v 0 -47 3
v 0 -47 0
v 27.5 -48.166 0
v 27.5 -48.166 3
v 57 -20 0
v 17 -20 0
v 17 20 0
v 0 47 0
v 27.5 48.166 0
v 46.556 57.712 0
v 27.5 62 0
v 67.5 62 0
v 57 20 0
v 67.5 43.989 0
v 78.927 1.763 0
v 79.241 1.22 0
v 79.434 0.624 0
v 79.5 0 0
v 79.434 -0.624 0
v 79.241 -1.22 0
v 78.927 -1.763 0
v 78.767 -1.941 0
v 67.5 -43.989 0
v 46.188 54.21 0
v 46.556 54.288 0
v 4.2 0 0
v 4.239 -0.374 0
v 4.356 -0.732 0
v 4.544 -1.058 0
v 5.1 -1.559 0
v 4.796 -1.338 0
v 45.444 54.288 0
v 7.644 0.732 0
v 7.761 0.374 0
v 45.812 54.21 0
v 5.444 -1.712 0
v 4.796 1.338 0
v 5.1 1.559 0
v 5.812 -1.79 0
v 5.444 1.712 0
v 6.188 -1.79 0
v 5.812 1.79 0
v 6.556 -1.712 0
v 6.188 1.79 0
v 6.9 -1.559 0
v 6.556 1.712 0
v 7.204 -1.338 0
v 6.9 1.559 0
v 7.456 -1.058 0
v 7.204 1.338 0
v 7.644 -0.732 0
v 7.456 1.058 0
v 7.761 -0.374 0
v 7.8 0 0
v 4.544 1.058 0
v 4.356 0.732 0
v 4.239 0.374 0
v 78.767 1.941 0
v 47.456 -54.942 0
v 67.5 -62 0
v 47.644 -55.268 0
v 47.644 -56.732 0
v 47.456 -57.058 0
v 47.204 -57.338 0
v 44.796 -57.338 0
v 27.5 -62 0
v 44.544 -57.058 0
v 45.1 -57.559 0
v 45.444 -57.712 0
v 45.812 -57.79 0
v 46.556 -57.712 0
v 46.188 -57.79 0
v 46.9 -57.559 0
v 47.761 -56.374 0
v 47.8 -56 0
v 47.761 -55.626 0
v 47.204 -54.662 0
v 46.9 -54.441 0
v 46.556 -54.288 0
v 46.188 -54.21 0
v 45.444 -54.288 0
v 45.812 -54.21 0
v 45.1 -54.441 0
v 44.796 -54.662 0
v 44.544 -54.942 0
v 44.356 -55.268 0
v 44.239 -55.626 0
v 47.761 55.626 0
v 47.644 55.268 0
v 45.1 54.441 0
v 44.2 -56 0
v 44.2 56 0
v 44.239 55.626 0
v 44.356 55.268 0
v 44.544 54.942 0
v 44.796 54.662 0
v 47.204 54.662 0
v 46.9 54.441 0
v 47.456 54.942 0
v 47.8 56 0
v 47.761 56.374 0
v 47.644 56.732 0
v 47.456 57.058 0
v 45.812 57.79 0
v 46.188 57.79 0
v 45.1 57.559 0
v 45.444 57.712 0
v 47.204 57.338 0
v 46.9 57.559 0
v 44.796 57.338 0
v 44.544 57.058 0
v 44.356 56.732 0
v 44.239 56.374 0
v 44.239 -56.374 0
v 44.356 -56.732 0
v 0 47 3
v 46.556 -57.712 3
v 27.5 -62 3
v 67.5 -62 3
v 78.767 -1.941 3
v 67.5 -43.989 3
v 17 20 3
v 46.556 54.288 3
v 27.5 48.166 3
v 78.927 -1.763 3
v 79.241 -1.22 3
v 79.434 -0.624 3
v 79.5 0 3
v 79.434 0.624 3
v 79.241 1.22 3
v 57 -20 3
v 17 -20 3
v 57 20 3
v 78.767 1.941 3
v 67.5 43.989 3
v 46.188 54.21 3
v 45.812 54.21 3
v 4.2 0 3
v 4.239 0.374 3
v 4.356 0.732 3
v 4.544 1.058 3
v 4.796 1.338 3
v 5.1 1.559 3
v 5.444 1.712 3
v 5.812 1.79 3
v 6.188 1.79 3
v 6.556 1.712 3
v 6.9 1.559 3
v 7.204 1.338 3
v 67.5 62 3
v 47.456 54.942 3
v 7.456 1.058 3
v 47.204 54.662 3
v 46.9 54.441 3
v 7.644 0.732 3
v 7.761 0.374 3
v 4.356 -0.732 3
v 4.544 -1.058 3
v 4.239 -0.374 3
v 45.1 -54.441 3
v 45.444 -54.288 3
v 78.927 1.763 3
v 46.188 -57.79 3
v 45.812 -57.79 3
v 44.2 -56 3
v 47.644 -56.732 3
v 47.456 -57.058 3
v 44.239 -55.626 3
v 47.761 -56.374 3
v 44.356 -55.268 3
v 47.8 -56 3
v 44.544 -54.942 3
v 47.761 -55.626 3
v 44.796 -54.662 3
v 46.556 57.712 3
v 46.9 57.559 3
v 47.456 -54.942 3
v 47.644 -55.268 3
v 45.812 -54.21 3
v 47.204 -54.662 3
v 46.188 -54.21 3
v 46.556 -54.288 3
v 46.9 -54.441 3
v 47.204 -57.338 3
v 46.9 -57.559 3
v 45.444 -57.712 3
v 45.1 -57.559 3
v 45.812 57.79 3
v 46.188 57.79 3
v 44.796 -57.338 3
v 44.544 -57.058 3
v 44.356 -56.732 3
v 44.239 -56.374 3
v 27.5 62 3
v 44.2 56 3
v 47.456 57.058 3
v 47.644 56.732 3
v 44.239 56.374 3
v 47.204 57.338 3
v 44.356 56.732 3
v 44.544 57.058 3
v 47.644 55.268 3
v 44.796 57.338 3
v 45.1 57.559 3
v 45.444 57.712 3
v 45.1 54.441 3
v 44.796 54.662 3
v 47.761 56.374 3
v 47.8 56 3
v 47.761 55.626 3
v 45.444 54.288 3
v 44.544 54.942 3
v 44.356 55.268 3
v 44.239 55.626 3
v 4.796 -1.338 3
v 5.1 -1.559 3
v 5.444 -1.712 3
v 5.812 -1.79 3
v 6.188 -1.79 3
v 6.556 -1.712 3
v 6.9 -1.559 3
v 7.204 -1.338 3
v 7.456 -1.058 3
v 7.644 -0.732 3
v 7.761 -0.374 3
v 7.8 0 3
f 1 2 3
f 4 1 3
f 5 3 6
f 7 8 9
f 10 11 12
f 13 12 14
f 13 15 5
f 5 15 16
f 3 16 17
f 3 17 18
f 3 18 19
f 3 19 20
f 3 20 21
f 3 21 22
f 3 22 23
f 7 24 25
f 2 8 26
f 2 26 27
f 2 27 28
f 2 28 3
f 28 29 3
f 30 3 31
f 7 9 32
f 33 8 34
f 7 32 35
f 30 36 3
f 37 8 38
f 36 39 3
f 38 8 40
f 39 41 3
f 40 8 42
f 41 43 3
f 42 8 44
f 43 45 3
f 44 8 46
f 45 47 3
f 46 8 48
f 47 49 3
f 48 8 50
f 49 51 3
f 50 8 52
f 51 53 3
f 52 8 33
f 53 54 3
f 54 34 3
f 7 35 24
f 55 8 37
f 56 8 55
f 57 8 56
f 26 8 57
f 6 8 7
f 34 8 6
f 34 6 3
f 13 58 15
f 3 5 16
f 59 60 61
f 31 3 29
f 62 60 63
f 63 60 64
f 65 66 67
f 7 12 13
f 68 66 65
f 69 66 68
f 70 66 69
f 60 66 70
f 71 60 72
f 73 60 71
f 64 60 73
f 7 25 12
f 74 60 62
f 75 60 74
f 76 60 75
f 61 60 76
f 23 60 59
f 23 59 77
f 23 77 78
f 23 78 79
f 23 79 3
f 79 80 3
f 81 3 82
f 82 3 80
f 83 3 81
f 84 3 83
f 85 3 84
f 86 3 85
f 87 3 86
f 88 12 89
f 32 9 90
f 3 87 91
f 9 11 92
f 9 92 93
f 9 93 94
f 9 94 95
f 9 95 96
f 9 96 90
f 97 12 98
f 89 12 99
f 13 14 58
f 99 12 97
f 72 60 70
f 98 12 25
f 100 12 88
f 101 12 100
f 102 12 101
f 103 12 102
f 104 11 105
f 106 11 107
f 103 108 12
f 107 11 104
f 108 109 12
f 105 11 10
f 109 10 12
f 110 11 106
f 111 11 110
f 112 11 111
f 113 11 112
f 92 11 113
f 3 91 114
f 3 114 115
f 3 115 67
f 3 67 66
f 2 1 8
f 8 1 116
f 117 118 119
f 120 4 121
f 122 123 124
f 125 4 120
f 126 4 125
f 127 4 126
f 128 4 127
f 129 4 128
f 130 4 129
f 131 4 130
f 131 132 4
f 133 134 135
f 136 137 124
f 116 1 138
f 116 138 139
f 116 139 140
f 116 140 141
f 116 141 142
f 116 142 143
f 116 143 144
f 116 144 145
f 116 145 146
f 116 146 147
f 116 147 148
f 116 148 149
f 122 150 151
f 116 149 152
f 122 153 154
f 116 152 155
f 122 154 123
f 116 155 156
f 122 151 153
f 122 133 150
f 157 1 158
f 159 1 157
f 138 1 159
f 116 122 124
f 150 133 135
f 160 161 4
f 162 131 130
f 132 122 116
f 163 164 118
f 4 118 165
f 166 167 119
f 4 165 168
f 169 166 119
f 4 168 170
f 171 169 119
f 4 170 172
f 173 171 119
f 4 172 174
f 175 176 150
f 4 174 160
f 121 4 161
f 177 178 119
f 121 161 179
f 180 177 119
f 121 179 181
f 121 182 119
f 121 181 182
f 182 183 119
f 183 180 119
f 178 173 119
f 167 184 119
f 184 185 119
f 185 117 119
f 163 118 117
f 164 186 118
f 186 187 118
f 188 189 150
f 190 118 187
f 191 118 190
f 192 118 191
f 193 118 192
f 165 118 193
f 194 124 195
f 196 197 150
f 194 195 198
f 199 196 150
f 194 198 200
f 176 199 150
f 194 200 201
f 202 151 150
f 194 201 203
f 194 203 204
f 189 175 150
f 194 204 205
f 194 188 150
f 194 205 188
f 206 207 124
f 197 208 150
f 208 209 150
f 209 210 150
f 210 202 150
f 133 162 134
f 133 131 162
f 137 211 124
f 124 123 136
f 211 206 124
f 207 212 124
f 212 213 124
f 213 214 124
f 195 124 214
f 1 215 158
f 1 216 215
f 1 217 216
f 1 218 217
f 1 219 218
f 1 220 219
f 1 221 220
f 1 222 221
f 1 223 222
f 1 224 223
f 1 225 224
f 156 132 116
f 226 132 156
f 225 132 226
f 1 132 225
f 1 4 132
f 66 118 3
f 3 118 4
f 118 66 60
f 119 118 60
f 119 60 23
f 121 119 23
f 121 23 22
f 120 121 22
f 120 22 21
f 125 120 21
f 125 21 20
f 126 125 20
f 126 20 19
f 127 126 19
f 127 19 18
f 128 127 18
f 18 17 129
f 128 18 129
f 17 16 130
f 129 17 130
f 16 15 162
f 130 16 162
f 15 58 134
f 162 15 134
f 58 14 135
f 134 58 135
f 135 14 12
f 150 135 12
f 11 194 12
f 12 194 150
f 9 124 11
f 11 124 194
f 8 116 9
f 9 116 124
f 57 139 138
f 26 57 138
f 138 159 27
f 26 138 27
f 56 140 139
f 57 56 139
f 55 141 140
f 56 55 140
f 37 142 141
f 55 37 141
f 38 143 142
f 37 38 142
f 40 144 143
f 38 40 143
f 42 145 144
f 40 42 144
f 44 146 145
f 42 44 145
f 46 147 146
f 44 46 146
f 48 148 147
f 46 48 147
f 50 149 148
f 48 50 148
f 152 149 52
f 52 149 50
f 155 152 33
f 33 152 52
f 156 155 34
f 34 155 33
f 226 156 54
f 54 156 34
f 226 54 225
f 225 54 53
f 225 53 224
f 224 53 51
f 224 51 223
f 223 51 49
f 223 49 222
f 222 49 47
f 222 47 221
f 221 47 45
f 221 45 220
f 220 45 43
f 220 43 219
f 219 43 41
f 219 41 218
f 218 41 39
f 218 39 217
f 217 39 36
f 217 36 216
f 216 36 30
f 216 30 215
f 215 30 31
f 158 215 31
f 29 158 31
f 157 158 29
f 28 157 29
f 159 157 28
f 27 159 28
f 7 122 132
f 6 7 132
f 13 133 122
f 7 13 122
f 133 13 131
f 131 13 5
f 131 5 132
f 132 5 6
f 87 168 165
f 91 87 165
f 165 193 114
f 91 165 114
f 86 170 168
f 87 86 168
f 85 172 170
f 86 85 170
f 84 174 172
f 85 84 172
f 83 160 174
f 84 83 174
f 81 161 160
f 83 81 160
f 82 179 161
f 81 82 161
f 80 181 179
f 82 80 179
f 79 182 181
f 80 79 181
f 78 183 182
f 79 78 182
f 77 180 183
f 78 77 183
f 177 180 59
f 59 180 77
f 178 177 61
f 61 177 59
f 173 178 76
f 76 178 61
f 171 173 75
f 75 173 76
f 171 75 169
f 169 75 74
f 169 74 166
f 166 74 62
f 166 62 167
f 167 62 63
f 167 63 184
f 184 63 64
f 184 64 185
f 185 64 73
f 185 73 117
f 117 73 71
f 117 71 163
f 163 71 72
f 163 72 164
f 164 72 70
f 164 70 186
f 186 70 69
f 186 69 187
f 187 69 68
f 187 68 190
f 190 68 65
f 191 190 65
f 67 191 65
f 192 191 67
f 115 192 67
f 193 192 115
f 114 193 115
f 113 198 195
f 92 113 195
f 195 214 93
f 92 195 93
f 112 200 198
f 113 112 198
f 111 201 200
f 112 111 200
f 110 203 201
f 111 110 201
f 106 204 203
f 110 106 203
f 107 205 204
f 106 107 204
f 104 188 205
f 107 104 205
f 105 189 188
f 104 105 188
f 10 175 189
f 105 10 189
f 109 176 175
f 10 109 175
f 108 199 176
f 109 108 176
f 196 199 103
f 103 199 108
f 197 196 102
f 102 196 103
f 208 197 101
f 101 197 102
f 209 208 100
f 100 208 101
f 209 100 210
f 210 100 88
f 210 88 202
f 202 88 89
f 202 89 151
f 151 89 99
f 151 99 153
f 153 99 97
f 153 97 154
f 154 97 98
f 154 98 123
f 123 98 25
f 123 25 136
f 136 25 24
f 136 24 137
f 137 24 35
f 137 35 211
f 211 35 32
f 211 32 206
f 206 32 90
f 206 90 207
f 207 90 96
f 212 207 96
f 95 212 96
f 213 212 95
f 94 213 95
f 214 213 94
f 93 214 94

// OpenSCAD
difference()
{
	union()
	{
		hull()
		{
		translate([0,-47,0])cube([50,94,23]);
		
		translate([70,-25,11.5])rotate([0,0,-15])cube([5,50,23],center=true);//artillo sensor
		translate([70,25,11.5])rotate([0,0,15])cube([5,50,23],center=true);//artillo sensor	
		}
			translate([27.5,-124/2,0])cube([40,124,23]);//aletas	
			translate([76.5,0,0])cylinder(r=3,h=23,$fn=30);

	
		
	}

	union()
	{
	

		translate([17,-20,-10])cube([40,40,50]);
		translate([46,-56,-1])cylinder(r=1.8,h=30,$fn=30);
		translate([46,56,-1])cylinder(r=1.8,h=30,$fn=30);

	
		translate([6,0,-1])cylinder(r=1.8,h=30,$fn=30);
		translate([-100,-100,3])cube([300,300,50]);


}
}
module  sensor()
{
translate([-4,-46/2,-1])cube([5,46,22]);
translate([0,-26/2,11])rotate([0,90,0])cylinder(d1=16.5,d2=30,h=50,$fn=50);
translate([0,26/2,11])rotate([0,90,0])cylinder(d1=16.5,d2=30,h=50,$fn=50);
hull()
{
translate([0,-2.5,17])rotate([0,90,0])cylinder(r=3,h=4,$fn=20);
translate([0,2.5,17])rotate([0,90,0])cylinder(r=3,h=4,$fn=20);
}
hull()
{
translate([0,-2.5,5])rotate([0,90,0])cylinder(r=3,h=4,$fn=20);
translate([0,2.5,5])rotate([0,90,0])cylinder(r=3,h=4,$fn=20);
}
}
